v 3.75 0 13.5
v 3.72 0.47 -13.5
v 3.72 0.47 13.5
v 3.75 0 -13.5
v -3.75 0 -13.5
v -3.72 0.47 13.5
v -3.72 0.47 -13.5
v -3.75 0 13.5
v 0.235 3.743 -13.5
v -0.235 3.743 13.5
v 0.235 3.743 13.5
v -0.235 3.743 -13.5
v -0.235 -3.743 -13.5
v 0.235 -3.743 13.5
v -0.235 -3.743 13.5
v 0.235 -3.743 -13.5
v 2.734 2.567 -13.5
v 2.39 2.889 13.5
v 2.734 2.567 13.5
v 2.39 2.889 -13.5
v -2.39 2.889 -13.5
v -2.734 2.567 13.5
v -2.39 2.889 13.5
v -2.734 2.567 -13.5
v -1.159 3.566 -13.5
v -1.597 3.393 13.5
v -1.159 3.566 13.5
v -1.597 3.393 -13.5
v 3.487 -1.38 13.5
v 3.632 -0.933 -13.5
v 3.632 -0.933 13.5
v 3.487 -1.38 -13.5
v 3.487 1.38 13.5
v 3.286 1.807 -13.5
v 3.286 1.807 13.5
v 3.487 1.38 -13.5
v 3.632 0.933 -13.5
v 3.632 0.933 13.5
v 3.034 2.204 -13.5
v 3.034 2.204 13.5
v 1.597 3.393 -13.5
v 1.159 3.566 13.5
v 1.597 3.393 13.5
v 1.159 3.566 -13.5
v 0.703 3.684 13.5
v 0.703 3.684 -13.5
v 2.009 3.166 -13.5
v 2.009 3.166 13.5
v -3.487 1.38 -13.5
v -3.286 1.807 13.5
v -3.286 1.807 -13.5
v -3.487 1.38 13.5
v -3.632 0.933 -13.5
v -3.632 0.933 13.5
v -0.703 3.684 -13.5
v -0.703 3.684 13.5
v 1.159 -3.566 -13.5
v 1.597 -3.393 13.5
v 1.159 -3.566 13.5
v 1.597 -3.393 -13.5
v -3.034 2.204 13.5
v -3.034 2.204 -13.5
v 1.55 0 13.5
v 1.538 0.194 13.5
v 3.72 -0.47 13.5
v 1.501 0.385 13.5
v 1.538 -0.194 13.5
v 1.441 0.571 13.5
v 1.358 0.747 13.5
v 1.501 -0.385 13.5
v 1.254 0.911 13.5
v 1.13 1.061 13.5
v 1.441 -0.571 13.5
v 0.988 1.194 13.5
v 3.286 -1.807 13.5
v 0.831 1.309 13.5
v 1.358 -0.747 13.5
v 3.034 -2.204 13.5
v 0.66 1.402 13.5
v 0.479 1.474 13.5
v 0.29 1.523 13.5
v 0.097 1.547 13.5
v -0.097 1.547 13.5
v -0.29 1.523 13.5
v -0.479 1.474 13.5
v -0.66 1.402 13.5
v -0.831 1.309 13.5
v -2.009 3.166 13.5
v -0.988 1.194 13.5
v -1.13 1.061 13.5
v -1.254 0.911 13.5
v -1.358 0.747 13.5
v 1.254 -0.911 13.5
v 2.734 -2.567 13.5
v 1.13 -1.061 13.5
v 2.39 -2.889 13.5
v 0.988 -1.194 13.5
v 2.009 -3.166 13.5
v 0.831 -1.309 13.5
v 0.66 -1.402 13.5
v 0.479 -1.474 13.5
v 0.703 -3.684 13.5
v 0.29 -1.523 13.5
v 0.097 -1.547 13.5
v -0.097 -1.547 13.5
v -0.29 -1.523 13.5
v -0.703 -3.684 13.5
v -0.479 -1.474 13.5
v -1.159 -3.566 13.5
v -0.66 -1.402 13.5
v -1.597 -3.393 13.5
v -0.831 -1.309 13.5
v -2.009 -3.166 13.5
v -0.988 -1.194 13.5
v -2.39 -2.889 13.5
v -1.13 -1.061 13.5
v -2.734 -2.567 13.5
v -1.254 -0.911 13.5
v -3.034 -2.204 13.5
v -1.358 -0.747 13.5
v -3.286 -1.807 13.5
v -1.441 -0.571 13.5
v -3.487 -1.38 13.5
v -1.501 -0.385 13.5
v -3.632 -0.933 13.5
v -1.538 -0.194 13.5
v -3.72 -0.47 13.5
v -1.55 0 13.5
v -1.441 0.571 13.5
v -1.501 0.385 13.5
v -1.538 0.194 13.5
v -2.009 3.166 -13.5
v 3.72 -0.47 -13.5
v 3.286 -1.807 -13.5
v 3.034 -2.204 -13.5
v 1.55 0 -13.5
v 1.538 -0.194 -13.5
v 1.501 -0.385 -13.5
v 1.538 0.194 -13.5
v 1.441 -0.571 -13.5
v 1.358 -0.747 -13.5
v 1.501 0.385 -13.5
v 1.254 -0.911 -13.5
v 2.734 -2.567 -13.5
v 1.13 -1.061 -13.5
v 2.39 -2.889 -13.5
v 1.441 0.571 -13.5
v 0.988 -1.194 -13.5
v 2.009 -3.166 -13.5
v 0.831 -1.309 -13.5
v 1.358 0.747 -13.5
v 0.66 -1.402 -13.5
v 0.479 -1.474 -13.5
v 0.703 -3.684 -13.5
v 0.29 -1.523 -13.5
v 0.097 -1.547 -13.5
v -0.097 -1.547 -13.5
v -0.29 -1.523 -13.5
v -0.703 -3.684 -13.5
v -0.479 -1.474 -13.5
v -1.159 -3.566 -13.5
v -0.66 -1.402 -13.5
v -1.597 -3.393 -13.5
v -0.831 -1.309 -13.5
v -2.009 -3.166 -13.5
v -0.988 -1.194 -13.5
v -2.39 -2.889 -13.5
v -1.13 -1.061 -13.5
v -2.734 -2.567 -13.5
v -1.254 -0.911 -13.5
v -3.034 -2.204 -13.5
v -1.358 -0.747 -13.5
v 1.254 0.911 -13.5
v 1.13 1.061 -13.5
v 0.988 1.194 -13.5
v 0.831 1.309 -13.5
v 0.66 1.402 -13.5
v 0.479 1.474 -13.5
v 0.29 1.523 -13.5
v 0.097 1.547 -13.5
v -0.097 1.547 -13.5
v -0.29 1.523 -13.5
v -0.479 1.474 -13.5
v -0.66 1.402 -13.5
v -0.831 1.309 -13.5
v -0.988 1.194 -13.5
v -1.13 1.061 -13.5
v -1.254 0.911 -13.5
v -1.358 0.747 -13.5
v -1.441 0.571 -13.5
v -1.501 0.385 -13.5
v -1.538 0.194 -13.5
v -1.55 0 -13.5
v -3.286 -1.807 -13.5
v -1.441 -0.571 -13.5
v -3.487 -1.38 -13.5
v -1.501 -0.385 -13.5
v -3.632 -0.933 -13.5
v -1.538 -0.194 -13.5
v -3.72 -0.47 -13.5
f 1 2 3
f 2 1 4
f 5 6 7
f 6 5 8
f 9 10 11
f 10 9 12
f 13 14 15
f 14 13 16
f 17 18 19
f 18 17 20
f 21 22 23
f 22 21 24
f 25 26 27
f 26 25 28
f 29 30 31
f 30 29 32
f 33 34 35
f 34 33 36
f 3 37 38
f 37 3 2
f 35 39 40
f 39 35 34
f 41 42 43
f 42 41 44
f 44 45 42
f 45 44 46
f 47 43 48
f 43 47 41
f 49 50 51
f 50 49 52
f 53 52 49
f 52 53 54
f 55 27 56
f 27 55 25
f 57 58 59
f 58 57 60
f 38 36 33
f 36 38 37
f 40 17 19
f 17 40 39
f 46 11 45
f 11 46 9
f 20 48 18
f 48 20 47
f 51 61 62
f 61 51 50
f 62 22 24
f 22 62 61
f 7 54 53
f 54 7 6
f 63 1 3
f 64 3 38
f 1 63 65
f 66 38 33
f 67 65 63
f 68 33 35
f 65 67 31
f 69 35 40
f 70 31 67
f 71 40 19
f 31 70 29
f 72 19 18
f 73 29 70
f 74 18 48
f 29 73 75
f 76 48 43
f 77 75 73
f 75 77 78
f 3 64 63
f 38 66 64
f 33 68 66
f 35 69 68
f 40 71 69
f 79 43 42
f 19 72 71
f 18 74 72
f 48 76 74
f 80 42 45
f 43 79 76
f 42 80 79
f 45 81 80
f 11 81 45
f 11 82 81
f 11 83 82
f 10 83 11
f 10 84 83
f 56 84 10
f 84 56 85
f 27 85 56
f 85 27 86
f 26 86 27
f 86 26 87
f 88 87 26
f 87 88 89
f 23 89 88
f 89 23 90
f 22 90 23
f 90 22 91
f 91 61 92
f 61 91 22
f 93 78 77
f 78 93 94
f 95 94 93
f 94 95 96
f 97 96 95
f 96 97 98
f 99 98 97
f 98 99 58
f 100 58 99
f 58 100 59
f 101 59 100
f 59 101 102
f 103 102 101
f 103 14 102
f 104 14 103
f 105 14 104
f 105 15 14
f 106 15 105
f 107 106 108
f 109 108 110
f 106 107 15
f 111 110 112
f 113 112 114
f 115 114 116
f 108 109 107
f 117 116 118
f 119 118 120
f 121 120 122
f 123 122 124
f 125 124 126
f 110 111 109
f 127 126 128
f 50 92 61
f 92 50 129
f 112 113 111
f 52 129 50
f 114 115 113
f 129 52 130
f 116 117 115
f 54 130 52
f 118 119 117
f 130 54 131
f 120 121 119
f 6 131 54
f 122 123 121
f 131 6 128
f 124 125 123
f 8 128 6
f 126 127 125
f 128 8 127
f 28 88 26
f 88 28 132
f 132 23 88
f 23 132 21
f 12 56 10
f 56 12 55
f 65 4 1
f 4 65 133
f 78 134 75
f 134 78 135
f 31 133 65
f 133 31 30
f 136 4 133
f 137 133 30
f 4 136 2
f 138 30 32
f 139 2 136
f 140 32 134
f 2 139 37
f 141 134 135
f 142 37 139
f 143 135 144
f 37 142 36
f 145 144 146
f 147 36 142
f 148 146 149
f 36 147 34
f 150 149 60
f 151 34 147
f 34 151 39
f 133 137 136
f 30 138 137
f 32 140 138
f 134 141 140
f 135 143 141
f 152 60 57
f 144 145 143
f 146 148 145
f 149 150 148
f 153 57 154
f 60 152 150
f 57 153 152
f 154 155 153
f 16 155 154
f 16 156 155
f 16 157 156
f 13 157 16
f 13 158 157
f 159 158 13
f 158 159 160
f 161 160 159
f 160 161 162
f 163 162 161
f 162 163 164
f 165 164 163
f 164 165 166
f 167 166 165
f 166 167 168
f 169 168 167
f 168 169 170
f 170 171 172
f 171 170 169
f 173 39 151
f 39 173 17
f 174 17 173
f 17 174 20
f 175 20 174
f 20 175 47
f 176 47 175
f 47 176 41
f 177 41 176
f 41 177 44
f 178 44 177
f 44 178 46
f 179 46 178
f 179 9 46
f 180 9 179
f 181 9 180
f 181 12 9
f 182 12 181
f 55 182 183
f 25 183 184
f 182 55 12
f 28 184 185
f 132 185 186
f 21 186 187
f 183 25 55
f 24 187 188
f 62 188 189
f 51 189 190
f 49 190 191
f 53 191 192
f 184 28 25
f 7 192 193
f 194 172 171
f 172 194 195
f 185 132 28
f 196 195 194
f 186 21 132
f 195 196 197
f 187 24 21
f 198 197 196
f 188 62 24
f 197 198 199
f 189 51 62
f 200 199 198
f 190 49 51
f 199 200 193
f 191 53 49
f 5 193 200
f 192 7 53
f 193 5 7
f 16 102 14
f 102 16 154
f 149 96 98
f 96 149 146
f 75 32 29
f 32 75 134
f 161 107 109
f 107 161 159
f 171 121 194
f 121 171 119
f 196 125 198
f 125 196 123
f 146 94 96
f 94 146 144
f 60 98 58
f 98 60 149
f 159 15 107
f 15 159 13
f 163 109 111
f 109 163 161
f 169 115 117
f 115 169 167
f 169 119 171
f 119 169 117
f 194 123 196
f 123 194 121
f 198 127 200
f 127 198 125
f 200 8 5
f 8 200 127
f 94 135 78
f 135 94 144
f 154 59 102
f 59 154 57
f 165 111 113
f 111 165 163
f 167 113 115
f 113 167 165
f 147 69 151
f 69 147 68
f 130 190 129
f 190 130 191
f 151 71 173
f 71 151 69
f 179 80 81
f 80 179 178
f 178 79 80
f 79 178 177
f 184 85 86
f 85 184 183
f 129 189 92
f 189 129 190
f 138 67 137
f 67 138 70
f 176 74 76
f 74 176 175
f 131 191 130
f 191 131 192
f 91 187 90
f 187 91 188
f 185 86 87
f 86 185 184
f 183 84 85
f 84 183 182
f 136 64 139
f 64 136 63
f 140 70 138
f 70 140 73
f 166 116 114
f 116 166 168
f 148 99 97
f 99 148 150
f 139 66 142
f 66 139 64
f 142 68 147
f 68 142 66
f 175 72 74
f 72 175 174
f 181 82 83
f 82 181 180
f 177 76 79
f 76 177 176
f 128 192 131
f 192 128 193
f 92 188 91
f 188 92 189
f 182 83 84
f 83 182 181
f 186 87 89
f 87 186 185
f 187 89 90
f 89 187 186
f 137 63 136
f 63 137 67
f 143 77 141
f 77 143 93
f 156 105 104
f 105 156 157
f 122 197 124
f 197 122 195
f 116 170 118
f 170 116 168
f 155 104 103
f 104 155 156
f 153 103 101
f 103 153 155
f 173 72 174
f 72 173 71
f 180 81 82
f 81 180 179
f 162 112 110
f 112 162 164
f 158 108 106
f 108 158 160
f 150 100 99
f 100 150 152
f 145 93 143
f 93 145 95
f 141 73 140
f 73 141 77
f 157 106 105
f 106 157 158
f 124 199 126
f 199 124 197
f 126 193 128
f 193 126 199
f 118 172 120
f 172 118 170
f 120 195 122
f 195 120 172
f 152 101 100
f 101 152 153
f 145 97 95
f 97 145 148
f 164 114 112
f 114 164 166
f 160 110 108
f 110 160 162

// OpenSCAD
$fn = 50;


difference() {
	union() {
		translate(v = [0, 0, -13.5000000000]) {
			cylinder(h = 27, r = 3.7500000000);
		}
	}
	union() {
		translate(v = [0, 0, -100.0000000000]) {
			cylinder(h = 200, r = 1.5500000000);
		}
	}
}
